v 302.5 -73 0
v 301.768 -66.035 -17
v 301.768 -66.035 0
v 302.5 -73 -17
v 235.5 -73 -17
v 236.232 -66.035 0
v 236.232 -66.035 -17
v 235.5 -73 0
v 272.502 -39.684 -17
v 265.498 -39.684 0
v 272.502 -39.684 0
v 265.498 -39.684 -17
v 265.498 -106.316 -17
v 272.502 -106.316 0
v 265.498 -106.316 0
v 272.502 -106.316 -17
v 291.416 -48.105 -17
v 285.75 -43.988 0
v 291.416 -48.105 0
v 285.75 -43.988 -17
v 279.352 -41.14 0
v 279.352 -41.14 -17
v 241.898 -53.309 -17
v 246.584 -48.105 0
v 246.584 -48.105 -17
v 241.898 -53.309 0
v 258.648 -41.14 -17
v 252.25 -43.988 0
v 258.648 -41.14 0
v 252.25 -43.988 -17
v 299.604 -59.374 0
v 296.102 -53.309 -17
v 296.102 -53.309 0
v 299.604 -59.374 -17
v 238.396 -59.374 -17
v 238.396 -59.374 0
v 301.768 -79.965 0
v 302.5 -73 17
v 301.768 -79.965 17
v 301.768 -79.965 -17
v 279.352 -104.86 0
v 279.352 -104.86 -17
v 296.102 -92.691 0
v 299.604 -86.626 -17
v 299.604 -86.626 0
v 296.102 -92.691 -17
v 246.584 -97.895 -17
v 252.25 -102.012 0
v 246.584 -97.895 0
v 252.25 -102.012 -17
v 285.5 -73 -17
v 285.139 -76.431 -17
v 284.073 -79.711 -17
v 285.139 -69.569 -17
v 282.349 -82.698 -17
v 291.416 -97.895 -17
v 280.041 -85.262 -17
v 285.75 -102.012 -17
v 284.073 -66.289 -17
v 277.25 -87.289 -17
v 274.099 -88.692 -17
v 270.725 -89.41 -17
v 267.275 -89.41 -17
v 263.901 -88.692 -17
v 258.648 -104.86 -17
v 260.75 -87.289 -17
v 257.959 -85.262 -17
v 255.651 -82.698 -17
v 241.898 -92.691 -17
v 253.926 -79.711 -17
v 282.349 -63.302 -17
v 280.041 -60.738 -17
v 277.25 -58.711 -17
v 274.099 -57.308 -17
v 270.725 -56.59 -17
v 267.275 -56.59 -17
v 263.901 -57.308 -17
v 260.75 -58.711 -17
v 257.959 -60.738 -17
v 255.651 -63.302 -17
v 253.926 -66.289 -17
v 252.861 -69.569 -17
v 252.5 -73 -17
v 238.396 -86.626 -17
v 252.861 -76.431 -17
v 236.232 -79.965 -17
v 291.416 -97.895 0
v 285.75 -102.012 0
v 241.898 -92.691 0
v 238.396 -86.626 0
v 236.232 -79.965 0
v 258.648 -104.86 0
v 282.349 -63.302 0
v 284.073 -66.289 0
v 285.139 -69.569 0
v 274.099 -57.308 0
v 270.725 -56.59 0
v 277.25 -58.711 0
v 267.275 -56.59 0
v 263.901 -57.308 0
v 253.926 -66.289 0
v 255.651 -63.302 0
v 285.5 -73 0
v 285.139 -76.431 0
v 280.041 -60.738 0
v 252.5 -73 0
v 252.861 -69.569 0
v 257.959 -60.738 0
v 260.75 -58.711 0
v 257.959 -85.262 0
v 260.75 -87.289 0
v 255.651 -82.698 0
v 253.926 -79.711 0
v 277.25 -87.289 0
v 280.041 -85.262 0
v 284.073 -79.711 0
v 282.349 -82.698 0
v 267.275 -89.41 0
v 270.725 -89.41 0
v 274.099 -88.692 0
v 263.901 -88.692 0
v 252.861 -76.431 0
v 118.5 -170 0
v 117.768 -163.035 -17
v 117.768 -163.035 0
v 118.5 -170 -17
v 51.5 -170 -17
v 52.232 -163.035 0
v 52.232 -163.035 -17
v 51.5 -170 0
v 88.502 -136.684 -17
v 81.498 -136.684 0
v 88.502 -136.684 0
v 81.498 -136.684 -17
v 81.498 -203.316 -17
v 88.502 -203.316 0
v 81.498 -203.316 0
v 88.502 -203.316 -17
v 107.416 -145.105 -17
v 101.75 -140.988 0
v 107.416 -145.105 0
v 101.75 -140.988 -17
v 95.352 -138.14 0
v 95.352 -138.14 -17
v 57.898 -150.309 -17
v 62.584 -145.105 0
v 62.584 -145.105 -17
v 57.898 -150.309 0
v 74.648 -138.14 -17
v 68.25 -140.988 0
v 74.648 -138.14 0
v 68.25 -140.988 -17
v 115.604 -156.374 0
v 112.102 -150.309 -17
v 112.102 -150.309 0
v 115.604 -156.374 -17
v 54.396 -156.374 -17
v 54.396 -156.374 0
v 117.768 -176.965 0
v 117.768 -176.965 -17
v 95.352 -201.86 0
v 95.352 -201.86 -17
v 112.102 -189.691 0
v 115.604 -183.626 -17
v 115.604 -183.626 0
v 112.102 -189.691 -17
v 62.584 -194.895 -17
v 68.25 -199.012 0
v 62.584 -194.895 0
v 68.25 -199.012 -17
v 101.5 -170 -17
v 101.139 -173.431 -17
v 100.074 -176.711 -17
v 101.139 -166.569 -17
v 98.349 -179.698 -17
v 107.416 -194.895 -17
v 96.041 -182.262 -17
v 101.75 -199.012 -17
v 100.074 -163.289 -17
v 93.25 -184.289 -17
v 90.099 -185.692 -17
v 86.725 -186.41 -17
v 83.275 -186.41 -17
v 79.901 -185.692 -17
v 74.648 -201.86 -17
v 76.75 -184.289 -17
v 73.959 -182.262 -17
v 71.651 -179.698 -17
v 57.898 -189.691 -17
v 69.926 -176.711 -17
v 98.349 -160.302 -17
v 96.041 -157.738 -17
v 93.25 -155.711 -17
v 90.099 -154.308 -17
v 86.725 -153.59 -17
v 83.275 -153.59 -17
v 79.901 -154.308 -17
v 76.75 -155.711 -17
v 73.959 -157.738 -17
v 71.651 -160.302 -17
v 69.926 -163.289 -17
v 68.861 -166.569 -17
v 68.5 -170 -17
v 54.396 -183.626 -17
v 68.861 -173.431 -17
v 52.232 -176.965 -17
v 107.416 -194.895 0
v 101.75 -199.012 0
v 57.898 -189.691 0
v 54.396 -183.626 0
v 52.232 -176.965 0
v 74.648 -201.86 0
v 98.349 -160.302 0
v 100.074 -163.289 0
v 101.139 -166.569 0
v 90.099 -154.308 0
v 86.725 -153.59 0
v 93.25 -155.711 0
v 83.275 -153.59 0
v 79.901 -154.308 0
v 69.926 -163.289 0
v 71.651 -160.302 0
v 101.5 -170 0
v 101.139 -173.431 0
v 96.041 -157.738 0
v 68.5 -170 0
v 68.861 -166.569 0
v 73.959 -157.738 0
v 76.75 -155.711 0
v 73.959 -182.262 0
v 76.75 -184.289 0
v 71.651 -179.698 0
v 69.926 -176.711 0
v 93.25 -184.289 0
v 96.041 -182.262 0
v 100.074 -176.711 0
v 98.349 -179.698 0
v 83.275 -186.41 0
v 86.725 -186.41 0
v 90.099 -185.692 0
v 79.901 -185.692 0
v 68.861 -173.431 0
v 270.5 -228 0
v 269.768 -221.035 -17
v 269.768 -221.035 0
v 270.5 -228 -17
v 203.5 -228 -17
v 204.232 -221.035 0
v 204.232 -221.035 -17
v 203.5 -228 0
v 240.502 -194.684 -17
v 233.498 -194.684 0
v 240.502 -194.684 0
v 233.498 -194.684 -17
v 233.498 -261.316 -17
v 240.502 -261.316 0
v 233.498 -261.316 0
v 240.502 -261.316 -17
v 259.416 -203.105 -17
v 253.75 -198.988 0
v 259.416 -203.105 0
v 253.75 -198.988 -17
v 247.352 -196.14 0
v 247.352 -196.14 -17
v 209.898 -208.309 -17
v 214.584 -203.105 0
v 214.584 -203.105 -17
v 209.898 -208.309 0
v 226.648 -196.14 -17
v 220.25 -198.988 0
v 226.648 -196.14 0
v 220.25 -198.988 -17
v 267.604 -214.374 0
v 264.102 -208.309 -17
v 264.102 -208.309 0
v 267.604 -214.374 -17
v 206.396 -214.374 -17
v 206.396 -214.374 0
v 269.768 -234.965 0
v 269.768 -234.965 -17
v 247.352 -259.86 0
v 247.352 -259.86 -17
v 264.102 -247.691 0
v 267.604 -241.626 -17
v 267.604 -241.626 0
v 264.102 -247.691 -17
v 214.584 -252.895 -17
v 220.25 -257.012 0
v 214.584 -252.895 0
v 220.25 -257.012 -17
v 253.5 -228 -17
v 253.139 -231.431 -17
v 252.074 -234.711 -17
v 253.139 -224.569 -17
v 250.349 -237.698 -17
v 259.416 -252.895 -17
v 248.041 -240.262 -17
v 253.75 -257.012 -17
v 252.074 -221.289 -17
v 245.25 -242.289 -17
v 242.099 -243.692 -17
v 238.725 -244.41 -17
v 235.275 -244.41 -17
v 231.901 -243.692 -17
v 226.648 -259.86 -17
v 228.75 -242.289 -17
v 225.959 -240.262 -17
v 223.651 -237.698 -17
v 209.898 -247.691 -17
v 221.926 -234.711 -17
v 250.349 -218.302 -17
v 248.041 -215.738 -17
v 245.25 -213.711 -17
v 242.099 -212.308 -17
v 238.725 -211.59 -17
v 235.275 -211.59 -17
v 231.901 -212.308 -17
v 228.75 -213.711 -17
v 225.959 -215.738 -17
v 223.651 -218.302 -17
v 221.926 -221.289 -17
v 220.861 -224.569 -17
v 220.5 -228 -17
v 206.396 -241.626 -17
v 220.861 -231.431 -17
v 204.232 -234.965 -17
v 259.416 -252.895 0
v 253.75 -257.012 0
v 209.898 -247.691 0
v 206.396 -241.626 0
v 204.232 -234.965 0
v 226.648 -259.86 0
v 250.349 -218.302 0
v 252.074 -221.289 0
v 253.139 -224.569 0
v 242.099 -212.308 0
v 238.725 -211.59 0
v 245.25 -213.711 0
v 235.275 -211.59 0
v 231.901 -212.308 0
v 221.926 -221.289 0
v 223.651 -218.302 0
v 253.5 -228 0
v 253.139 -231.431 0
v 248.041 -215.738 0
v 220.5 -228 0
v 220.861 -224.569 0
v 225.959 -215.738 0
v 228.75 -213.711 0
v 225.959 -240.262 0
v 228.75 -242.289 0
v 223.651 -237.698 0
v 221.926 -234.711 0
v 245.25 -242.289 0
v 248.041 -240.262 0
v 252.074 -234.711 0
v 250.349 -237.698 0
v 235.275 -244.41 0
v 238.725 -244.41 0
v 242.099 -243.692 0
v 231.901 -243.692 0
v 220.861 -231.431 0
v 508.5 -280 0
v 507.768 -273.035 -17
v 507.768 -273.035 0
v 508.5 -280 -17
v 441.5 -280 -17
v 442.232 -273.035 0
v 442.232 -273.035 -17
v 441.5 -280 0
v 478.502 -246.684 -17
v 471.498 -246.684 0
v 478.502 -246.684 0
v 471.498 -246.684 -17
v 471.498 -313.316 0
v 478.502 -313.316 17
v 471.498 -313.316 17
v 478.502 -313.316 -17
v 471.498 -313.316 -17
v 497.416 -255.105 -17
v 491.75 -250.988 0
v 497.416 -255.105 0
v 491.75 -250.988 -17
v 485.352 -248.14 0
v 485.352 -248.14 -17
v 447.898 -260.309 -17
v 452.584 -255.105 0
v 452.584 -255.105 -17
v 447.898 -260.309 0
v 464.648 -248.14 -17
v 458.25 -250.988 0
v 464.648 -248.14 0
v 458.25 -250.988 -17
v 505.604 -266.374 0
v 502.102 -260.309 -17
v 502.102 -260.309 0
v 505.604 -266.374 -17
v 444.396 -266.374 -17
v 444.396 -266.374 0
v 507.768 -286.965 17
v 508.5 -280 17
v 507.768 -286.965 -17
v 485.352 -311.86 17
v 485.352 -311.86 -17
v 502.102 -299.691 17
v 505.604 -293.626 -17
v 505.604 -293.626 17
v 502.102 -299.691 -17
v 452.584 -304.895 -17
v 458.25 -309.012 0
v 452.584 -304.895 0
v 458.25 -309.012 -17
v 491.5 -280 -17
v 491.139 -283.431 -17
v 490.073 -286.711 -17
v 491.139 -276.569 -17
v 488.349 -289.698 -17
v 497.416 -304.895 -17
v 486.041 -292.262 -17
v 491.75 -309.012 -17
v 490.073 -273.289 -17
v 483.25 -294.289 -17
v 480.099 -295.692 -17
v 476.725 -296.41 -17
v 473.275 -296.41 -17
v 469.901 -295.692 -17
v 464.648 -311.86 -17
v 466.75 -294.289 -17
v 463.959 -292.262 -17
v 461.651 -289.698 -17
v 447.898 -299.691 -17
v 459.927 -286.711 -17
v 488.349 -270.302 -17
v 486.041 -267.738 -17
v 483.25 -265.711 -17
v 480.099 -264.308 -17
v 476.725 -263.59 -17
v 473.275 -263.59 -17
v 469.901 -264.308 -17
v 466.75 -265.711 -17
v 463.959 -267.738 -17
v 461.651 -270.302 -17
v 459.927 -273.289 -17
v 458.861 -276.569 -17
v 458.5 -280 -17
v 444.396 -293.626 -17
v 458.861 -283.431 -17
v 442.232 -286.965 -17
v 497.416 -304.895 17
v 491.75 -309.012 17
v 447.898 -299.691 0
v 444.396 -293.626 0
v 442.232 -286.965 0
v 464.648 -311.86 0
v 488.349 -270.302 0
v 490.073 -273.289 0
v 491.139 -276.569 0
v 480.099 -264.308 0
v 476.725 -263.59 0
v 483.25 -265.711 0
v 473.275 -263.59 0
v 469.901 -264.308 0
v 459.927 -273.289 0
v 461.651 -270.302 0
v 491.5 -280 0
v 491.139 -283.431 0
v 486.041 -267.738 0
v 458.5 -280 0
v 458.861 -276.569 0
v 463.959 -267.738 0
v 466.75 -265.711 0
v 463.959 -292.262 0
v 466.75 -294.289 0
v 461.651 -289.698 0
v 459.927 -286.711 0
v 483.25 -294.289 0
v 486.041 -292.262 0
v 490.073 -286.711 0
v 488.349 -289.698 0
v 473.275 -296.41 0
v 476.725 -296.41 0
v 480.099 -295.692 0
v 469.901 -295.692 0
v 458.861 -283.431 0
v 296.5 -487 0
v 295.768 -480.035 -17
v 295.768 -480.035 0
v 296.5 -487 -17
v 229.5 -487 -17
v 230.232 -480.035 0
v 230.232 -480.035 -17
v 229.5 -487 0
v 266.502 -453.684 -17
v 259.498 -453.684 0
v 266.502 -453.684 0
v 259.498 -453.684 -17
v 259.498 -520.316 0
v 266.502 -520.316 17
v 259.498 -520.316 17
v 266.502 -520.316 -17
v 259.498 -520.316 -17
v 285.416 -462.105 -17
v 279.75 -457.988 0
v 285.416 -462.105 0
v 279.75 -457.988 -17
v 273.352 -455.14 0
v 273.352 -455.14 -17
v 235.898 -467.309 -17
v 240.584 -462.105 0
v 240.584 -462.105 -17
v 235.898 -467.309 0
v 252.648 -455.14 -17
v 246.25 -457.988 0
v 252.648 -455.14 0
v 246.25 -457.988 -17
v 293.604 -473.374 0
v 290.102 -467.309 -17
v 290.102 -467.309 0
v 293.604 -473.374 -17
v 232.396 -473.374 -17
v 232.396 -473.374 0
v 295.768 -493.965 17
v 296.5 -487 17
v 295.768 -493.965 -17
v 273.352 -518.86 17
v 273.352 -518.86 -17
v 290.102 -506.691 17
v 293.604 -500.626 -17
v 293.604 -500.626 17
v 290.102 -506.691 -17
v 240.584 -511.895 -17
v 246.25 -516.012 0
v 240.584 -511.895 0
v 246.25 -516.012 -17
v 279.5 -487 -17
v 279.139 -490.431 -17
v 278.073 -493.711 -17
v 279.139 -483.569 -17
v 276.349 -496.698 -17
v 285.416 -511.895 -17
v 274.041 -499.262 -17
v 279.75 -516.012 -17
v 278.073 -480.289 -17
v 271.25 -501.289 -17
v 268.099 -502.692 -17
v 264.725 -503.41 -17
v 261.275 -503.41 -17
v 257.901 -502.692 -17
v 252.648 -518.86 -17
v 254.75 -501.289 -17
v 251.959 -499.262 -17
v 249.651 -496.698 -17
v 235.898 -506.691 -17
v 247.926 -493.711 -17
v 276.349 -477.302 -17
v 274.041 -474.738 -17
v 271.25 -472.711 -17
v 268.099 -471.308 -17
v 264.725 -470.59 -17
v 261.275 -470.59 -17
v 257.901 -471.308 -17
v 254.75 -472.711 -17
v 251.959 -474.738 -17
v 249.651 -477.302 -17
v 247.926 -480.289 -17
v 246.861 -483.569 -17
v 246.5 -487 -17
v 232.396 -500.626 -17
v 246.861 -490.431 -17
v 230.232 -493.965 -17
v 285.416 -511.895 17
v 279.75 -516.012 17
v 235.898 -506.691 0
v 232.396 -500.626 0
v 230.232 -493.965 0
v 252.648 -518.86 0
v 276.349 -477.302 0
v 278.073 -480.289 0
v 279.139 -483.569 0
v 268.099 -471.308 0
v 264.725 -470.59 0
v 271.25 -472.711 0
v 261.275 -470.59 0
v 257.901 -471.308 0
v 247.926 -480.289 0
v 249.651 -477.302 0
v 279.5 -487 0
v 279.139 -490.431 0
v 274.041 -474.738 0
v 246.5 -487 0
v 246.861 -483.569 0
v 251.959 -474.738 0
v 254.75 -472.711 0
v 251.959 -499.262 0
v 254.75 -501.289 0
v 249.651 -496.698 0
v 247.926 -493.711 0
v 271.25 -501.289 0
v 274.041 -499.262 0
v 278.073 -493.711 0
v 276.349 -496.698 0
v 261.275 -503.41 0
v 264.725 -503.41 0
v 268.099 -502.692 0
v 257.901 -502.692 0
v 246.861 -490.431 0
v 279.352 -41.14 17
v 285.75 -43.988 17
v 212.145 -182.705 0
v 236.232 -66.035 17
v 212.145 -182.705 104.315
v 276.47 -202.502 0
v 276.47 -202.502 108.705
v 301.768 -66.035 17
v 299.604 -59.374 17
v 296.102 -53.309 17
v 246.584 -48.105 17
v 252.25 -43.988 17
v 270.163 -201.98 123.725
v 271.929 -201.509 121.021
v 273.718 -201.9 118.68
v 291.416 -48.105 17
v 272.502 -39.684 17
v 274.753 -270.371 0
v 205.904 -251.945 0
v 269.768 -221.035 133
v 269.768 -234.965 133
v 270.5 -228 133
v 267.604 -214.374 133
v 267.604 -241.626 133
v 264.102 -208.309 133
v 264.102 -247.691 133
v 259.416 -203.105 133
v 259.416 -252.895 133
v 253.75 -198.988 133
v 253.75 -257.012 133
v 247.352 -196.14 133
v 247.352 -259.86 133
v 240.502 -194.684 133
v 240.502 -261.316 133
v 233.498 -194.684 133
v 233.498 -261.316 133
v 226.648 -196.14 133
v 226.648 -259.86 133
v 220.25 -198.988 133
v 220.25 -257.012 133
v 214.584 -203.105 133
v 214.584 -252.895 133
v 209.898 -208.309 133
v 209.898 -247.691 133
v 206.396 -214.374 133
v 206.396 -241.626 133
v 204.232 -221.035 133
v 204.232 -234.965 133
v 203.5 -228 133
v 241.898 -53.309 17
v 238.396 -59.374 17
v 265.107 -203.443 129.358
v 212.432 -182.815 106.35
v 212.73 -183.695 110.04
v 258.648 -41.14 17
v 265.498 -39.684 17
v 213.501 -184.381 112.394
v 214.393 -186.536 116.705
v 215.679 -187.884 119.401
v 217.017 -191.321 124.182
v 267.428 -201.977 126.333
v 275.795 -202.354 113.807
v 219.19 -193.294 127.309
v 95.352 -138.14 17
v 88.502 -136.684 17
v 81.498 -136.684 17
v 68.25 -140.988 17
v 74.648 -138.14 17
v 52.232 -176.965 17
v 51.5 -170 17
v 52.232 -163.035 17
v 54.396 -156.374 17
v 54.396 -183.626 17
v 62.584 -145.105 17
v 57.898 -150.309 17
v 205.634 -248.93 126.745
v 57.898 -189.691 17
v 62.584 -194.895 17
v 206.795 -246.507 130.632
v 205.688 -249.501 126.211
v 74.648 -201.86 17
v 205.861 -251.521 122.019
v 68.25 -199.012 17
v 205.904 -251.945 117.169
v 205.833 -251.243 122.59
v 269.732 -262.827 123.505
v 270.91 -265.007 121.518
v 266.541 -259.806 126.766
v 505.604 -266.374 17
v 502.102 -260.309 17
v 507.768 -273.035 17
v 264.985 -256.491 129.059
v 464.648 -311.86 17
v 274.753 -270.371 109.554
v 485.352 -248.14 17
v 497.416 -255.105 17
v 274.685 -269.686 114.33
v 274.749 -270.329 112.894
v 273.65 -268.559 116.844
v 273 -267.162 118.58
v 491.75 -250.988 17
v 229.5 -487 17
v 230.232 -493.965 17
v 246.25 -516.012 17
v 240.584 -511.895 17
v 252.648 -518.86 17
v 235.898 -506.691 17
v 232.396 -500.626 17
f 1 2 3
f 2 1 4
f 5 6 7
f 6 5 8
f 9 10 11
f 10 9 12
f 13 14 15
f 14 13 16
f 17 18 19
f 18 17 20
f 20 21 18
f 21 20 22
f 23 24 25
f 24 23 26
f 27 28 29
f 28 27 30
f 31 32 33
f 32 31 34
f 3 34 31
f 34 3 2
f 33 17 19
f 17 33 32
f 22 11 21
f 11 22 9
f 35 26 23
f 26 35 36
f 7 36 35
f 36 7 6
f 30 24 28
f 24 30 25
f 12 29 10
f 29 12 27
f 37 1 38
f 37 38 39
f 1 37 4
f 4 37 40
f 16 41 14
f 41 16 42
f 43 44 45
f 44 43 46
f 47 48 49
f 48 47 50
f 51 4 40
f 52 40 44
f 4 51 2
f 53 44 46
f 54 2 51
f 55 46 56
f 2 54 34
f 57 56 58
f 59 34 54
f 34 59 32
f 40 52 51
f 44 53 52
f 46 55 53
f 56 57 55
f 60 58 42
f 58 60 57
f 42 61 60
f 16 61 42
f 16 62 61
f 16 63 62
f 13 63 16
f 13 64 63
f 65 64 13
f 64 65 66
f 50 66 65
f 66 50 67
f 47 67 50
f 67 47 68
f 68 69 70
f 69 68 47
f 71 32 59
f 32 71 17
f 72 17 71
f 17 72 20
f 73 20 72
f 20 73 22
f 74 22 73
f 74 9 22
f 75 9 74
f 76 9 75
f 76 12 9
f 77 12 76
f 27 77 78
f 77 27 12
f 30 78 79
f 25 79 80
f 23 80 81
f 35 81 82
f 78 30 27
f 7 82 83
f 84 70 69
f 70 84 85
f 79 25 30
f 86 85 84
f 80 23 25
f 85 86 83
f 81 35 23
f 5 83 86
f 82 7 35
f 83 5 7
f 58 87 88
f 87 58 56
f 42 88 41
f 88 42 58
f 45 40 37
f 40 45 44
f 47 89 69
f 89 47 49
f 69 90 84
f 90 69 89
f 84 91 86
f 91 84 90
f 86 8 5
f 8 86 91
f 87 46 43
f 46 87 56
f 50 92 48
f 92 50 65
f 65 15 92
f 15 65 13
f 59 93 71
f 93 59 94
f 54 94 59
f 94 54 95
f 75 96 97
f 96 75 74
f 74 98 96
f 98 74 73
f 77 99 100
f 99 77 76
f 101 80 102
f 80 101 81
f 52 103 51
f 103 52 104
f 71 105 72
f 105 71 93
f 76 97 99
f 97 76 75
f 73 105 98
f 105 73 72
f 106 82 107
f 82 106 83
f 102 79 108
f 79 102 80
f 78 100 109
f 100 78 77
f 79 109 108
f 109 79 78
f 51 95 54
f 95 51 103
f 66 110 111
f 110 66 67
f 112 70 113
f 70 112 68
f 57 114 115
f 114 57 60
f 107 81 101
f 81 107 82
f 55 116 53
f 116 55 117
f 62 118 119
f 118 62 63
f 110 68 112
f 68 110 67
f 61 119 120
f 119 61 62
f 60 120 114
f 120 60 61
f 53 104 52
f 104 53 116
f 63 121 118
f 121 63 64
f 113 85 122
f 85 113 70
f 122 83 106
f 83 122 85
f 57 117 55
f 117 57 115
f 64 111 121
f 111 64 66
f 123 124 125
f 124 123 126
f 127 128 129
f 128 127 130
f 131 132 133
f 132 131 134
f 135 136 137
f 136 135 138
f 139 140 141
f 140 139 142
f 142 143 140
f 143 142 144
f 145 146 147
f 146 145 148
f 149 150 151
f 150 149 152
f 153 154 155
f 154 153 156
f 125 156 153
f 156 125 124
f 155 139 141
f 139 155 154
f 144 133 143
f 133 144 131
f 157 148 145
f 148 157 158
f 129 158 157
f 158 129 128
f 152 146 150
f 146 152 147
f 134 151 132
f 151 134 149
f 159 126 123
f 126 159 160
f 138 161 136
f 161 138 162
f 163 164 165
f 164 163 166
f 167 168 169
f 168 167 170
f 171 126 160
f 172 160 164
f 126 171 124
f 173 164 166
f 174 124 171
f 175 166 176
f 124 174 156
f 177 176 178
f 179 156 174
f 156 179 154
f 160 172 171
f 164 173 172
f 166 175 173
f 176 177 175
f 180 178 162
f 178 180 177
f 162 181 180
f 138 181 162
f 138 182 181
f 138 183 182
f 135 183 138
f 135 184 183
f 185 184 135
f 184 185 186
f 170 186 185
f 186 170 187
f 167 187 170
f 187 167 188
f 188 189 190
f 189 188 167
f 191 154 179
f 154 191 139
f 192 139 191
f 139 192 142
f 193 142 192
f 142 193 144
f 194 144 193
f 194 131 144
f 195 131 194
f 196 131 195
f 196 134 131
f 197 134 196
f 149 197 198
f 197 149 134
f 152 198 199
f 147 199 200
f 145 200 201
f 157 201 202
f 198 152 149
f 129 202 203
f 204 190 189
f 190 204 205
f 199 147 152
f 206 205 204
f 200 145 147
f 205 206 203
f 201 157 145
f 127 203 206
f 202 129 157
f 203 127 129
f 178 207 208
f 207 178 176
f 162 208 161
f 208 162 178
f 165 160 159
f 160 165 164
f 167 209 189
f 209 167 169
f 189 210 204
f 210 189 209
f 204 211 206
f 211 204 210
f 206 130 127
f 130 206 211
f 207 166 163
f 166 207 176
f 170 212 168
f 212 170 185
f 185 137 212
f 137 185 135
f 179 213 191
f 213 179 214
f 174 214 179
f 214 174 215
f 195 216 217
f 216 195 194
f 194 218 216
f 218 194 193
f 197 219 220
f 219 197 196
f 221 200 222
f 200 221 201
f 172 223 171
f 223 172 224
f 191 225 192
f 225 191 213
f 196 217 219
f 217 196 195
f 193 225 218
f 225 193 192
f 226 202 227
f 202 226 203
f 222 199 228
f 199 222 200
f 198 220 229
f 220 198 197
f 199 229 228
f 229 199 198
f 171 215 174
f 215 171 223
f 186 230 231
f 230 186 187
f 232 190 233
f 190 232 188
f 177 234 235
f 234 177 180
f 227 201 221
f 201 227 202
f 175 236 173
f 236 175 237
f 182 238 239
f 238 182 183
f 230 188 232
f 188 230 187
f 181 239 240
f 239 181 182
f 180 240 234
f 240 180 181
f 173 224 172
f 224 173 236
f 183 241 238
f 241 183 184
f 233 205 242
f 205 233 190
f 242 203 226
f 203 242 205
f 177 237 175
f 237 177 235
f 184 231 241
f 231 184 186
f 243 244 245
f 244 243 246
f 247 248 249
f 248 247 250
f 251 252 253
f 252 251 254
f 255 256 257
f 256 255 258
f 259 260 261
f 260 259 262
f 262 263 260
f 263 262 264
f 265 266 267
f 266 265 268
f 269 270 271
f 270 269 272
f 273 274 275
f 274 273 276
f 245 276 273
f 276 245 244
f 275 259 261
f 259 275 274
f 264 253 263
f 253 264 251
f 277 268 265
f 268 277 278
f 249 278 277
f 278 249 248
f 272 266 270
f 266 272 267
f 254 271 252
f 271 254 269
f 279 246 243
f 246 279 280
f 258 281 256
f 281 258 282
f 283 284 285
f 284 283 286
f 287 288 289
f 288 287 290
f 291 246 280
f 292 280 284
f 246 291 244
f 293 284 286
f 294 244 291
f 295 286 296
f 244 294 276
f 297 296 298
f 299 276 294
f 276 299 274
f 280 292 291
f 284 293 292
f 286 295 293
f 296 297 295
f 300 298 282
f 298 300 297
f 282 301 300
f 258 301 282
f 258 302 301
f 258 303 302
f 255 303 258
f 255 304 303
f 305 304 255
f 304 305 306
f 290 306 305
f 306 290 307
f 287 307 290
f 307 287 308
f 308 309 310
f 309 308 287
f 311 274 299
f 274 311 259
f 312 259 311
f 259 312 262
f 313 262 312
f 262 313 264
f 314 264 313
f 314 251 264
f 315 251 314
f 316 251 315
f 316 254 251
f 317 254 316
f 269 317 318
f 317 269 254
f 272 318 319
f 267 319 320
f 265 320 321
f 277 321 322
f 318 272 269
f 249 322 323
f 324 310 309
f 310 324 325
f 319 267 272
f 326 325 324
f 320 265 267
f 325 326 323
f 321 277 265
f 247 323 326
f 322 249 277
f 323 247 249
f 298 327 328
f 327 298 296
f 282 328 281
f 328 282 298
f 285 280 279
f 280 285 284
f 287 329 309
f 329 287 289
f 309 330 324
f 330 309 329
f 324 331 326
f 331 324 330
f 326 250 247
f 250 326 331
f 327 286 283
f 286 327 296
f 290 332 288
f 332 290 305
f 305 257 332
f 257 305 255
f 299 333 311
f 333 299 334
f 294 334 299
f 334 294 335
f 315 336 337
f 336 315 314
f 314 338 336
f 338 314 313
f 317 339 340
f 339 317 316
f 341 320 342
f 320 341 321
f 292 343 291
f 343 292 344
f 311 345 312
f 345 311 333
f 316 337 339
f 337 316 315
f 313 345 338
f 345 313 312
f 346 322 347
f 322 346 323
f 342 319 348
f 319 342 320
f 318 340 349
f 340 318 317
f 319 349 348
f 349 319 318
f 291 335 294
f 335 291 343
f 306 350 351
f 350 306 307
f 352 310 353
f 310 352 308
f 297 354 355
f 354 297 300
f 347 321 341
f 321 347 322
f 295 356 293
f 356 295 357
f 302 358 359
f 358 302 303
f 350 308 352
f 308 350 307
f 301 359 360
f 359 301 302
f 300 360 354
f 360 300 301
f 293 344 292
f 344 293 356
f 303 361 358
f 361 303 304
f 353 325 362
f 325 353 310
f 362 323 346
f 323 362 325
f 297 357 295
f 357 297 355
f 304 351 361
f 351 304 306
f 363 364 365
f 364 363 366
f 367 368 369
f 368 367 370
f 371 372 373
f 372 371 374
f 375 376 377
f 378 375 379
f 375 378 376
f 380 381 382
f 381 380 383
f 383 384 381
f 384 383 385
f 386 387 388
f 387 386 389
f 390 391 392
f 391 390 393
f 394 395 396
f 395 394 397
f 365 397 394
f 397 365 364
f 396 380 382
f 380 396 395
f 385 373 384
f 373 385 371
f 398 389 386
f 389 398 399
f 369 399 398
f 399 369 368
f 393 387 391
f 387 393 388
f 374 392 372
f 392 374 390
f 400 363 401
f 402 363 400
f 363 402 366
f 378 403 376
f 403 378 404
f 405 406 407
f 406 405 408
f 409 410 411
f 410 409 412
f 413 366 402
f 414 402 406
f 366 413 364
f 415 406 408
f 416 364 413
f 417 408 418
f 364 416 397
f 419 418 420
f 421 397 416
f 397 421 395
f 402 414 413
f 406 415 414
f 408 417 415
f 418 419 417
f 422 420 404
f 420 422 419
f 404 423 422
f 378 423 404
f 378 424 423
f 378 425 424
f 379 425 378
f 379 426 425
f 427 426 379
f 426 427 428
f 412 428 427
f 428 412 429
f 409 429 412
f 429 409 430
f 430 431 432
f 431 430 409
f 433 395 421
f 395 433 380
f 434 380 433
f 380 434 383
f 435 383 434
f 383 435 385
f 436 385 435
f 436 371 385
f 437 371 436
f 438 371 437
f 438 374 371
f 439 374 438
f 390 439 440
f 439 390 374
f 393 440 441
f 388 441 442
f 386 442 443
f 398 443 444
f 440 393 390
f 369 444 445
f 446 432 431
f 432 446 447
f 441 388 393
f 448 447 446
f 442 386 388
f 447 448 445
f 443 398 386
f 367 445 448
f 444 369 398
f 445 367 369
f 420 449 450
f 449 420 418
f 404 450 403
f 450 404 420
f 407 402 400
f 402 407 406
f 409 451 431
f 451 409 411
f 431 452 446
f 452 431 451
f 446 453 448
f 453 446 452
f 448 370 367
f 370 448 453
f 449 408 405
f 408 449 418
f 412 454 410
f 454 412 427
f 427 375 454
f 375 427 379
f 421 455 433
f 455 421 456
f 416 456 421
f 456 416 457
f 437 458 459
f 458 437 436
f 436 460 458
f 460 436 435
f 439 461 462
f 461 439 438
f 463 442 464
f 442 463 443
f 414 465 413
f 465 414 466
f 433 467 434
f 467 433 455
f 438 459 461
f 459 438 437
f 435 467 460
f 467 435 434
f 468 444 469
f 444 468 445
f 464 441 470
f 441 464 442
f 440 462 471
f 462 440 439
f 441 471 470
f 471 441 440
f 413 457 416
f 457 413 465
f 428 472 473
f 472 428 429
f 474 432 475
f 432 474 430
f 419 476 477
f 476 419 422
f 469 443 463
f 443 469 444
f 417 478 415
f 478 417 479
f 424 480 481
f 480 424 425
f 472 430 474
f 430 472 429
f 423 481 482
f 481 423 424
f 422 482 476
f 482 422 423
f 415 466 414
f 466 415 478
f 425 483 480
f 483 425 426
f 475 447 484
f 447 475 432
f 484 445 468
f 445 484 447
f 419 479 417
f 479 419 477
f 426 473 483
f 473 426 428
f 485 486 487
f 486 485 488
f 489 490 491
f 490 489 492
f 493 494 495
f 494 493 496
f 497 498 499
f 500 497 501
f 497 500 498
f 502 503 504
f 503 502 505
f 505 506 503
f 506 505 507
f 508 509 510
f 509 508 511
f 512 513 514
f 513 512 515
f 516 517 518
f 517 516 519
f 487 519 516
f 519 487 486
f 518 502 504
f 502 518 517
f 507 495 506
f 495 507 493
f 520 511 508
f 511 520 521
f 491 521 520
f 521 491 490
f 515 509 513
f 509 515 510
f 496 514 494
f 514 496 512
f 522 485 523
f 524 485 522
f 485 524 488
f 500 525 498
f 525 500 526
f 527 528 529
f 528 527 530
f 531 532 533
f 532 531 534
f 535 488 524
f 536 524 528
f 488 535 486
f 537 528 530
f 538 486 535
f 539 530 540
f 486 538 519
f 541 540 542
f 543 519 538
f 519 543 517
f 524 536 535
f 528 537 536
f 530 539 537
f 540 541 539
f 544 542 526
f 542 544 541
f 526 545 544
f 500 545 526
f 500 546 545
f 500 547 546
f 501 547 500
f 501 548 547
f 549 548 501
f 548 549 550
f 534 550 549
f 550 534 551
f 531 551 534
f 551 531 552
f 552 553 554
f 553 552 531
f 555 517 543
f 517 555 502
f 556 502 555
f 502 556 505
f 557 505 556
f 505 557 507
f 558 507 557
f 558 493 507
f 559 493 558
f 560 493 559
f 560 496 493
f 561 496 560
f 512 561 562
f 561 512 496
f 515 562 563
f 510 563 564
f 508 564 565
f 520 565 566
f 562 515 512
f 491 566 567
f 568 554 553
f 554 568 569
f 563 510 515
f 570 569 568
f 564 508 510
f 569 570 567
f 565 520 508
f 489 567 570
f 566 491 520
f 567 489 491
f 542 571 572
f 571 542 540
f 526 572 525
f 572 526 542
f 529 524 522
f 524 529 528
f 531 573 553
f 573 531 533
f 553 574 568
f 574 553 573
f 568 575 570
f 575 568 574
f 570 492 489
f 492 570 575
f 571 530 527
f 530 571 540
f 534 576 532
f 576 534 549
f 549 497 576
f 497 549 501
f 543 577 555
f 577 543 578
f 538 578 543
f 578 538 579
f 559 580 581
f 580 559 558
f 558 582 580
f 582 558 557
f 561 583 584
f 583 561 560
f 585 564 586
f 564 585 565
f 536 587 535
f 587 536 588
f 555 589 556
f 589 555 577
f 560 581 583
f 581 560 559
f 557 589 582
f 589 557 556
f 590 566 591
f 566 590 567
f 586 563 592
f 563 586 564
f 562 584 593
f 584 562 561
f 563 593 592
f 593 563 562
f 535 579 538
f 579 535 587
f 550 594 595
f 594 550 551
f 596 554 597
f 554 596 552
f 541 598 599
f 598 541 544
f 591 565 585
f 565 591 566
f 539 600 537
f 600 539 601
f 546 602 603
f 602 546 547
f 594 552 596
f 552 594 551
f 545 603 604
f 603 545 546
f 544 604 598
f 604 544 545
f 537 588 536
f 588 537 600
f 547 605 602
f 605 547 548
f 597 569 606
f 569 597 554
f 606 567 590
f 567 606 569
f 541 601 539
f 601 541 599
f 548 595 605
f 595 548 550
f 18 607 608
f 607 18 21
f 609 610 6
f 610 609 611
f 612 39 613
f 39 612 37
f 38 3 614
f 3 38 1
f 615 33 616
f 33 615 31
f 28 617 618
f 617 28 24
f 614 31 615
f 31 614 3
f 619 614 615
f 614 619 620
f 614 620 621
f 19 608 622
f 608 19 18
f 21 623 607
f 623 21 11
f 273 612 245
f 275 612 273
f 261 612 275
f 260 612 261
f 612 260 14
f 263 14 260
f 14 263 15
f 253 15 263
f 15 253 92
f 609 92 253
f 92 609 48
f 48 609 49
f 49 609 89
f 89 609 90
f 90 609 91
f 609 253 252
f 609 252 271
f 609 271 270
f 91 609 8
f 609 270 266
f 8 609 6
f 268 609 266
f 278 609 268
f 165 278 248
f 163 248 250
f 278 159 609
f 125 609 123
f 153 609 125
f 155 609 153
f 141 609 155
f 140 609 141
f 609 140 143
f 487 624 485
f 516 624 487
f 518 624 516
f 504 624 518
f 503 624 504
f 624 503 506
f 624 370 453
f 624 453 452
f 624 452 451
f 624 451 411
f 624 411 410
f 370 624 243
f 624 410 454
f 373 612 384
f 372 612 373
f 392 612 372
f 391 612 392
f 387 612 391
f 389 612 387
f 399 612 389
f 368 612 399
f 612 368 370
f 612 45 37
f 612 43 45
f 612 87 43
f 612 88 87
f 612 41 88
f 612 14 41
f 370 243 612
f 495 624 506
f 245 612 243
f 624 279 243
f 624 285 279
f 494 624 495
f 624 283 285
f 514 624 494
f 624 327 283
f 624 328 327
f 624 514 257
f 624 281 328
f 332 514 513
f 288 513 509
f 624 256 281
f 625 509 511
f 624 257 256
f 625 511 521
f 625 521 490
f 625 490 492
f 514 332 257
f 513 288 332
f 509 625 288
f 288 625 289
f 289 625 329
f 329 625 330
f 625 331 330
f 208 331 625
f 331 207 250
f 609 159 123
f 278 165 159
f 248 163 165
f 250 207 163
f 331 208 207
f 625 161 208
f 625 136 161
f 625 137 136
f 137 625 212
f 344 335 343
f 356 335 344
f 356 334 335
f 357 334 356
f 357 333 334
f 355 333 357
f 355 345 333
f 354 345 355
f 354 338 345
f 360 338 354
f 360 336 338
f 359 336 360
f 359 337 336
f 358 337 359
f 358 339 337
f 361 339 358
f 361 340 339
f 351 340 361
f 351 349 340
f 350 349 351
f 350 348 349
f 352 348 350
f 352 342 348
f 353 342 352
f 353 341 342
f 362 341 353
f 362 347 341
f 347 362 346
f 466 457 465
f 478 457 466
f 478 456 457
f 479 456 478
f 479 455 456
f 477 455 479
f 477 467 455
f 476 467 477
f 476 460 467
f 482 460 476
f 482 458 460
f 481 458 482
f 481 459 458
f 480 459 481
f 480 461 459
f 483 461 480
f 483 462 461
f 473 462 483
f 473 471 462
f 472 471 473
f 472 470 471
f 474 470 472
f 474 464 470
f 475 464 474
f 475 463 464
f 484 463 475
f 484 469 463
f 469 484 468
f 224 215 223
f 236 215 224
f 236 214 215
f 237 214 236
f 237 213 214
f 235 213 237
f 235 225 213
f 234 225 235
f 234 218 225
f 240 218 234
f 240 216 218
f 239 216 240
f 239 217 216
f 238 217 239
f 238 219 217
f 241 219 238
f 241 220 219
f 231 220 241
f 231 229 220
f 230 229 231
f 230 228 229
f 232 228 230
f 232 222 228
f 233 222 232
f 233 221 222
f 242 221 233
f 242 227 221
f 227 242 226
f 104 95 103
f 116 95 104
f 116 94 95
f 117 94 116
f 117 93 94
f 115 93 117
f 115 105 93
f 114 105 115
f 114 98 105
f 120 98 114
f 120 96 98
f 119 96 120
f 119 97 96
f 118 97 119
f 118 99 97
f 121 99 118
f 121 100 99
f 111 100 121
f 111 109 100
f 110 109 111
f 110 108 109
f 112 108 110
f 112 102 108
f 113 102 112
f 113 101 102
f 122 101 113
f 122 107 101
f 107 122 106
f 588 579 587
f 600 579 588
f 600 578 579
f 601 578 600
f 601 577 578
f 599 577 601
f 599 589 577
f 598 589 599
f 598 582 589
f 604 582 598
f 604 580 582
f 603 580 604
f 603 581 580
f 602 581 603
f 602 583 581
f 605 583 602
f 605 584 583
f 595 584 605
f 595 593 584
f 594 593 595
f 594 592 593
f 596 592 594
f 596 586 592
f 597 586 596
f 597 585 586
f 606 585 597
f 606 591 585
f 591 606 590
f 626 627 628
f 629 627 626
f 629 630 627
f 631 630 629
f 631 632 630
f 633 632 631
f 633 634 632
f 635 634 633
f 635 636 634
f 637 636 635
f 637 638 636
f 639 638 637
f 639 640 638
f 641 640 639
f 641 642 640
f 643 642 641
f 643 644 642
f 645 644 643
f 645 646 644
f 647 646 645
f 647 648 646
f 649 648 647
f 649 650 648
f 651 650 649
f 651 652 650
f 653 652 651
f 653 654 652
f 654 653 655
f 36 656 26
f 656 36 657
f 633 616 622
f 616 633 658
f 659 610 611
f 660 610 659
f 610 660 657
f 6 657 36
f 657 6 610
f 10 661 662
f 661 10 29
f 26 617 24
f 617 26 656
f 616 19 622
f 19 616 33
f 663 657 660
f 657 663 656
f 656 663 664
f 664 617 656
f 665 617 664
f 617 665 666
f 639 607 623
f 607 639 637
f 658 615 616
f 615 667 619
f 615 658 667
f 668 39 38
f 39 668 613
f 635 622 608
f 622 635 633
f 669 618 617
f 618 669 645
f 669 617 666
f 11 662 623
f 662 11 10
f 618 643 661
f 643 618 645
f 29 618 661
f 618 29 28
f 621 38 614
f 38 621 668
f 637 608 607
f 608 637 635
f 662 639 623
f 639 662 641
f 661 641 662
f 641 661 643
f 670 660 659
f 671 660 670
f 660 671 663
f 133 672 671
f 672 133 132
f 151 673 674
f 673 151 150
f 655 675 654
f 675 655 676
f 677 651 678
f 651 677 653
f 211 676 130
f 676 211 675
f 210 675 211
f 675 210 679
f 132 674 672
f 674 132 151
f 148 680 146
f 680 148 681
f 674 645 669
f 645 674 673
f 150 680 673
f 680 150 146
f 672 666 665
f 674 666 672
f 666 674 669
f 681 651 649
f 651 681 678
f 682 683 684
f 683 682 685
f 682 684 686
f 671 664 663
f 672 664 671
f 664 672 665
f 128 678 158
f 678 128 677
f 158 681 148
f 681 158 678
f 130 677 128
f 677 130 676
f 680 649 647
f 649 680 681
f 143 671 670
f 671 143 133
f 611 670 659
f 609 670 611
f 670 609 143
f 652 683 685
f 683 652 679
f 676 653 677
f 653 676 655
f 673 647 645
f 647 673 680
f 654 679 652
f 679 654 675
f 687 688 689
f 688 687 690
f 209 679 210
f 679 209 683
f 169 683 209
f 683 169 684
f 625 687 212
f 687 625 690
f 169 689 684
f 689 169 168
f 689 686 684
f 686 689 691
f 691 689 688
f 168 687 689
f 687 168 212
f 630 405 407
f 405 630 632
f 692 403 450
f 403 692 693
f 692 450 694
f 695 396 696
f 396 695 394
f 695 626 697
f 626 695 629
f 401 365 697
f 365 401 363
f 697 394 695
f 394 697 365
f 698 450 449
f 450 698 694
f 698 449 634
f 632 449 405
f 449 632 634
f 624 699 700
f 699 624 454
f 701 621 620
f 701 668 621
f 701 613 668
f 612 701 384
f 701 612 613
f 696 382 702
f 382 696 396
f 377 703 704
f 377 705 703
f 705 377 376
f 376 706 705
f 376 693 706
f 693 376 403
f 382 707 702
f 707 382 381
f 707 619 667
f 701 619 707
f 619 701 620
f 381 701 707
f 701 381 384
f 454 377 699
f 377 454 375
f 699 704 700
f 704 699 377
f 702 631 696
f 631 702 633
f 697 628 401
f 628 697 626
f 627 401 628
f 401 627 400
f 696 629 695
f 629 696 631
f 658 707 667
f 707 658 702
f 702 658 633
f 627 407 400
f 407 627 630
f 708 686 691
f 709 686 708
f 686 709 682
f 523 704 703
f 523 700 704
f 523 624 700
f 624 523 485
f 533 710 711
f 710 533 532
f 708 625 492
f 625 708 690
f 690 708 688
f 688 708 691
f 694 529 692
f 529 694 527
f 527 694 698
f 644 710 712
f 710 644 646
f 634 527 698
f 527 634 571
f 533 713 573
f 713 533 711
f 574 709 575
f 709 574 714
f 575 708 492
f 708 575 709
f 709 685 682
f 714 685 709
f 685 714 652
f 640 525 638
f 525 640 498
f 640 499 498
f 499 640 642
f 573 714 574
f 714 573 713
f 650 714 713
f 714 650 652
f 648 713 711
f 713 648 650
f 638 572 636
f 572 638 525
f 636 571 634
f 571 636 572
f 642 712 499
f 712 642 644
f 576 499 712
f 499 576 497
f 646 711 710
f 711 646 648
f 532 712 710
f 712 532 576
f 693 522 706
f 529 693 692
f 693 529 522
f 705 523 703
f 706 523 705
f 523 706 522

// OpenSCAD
clearance=17; // [50]
height=150; // [300]
r1=25-17/2; r2=25+17/2;
for(xy = [[269,73],[85,170],[237,228],[475,280],[263,487]]){
    translate([xy[0],-xy[1],0]) difference(){
        cylinder(r=r2, h=clearance*2, center=true);
        cylinder(r=r1, h=clearance*2+.1, center=true);
    }
    hull(){
        translate([xy[0],-xy[1],0]) cylinder(r=r2, h=clearance);
        translate([237,-228,0])
        cylinder(r=r2, h=height-clearance);
    }
}
